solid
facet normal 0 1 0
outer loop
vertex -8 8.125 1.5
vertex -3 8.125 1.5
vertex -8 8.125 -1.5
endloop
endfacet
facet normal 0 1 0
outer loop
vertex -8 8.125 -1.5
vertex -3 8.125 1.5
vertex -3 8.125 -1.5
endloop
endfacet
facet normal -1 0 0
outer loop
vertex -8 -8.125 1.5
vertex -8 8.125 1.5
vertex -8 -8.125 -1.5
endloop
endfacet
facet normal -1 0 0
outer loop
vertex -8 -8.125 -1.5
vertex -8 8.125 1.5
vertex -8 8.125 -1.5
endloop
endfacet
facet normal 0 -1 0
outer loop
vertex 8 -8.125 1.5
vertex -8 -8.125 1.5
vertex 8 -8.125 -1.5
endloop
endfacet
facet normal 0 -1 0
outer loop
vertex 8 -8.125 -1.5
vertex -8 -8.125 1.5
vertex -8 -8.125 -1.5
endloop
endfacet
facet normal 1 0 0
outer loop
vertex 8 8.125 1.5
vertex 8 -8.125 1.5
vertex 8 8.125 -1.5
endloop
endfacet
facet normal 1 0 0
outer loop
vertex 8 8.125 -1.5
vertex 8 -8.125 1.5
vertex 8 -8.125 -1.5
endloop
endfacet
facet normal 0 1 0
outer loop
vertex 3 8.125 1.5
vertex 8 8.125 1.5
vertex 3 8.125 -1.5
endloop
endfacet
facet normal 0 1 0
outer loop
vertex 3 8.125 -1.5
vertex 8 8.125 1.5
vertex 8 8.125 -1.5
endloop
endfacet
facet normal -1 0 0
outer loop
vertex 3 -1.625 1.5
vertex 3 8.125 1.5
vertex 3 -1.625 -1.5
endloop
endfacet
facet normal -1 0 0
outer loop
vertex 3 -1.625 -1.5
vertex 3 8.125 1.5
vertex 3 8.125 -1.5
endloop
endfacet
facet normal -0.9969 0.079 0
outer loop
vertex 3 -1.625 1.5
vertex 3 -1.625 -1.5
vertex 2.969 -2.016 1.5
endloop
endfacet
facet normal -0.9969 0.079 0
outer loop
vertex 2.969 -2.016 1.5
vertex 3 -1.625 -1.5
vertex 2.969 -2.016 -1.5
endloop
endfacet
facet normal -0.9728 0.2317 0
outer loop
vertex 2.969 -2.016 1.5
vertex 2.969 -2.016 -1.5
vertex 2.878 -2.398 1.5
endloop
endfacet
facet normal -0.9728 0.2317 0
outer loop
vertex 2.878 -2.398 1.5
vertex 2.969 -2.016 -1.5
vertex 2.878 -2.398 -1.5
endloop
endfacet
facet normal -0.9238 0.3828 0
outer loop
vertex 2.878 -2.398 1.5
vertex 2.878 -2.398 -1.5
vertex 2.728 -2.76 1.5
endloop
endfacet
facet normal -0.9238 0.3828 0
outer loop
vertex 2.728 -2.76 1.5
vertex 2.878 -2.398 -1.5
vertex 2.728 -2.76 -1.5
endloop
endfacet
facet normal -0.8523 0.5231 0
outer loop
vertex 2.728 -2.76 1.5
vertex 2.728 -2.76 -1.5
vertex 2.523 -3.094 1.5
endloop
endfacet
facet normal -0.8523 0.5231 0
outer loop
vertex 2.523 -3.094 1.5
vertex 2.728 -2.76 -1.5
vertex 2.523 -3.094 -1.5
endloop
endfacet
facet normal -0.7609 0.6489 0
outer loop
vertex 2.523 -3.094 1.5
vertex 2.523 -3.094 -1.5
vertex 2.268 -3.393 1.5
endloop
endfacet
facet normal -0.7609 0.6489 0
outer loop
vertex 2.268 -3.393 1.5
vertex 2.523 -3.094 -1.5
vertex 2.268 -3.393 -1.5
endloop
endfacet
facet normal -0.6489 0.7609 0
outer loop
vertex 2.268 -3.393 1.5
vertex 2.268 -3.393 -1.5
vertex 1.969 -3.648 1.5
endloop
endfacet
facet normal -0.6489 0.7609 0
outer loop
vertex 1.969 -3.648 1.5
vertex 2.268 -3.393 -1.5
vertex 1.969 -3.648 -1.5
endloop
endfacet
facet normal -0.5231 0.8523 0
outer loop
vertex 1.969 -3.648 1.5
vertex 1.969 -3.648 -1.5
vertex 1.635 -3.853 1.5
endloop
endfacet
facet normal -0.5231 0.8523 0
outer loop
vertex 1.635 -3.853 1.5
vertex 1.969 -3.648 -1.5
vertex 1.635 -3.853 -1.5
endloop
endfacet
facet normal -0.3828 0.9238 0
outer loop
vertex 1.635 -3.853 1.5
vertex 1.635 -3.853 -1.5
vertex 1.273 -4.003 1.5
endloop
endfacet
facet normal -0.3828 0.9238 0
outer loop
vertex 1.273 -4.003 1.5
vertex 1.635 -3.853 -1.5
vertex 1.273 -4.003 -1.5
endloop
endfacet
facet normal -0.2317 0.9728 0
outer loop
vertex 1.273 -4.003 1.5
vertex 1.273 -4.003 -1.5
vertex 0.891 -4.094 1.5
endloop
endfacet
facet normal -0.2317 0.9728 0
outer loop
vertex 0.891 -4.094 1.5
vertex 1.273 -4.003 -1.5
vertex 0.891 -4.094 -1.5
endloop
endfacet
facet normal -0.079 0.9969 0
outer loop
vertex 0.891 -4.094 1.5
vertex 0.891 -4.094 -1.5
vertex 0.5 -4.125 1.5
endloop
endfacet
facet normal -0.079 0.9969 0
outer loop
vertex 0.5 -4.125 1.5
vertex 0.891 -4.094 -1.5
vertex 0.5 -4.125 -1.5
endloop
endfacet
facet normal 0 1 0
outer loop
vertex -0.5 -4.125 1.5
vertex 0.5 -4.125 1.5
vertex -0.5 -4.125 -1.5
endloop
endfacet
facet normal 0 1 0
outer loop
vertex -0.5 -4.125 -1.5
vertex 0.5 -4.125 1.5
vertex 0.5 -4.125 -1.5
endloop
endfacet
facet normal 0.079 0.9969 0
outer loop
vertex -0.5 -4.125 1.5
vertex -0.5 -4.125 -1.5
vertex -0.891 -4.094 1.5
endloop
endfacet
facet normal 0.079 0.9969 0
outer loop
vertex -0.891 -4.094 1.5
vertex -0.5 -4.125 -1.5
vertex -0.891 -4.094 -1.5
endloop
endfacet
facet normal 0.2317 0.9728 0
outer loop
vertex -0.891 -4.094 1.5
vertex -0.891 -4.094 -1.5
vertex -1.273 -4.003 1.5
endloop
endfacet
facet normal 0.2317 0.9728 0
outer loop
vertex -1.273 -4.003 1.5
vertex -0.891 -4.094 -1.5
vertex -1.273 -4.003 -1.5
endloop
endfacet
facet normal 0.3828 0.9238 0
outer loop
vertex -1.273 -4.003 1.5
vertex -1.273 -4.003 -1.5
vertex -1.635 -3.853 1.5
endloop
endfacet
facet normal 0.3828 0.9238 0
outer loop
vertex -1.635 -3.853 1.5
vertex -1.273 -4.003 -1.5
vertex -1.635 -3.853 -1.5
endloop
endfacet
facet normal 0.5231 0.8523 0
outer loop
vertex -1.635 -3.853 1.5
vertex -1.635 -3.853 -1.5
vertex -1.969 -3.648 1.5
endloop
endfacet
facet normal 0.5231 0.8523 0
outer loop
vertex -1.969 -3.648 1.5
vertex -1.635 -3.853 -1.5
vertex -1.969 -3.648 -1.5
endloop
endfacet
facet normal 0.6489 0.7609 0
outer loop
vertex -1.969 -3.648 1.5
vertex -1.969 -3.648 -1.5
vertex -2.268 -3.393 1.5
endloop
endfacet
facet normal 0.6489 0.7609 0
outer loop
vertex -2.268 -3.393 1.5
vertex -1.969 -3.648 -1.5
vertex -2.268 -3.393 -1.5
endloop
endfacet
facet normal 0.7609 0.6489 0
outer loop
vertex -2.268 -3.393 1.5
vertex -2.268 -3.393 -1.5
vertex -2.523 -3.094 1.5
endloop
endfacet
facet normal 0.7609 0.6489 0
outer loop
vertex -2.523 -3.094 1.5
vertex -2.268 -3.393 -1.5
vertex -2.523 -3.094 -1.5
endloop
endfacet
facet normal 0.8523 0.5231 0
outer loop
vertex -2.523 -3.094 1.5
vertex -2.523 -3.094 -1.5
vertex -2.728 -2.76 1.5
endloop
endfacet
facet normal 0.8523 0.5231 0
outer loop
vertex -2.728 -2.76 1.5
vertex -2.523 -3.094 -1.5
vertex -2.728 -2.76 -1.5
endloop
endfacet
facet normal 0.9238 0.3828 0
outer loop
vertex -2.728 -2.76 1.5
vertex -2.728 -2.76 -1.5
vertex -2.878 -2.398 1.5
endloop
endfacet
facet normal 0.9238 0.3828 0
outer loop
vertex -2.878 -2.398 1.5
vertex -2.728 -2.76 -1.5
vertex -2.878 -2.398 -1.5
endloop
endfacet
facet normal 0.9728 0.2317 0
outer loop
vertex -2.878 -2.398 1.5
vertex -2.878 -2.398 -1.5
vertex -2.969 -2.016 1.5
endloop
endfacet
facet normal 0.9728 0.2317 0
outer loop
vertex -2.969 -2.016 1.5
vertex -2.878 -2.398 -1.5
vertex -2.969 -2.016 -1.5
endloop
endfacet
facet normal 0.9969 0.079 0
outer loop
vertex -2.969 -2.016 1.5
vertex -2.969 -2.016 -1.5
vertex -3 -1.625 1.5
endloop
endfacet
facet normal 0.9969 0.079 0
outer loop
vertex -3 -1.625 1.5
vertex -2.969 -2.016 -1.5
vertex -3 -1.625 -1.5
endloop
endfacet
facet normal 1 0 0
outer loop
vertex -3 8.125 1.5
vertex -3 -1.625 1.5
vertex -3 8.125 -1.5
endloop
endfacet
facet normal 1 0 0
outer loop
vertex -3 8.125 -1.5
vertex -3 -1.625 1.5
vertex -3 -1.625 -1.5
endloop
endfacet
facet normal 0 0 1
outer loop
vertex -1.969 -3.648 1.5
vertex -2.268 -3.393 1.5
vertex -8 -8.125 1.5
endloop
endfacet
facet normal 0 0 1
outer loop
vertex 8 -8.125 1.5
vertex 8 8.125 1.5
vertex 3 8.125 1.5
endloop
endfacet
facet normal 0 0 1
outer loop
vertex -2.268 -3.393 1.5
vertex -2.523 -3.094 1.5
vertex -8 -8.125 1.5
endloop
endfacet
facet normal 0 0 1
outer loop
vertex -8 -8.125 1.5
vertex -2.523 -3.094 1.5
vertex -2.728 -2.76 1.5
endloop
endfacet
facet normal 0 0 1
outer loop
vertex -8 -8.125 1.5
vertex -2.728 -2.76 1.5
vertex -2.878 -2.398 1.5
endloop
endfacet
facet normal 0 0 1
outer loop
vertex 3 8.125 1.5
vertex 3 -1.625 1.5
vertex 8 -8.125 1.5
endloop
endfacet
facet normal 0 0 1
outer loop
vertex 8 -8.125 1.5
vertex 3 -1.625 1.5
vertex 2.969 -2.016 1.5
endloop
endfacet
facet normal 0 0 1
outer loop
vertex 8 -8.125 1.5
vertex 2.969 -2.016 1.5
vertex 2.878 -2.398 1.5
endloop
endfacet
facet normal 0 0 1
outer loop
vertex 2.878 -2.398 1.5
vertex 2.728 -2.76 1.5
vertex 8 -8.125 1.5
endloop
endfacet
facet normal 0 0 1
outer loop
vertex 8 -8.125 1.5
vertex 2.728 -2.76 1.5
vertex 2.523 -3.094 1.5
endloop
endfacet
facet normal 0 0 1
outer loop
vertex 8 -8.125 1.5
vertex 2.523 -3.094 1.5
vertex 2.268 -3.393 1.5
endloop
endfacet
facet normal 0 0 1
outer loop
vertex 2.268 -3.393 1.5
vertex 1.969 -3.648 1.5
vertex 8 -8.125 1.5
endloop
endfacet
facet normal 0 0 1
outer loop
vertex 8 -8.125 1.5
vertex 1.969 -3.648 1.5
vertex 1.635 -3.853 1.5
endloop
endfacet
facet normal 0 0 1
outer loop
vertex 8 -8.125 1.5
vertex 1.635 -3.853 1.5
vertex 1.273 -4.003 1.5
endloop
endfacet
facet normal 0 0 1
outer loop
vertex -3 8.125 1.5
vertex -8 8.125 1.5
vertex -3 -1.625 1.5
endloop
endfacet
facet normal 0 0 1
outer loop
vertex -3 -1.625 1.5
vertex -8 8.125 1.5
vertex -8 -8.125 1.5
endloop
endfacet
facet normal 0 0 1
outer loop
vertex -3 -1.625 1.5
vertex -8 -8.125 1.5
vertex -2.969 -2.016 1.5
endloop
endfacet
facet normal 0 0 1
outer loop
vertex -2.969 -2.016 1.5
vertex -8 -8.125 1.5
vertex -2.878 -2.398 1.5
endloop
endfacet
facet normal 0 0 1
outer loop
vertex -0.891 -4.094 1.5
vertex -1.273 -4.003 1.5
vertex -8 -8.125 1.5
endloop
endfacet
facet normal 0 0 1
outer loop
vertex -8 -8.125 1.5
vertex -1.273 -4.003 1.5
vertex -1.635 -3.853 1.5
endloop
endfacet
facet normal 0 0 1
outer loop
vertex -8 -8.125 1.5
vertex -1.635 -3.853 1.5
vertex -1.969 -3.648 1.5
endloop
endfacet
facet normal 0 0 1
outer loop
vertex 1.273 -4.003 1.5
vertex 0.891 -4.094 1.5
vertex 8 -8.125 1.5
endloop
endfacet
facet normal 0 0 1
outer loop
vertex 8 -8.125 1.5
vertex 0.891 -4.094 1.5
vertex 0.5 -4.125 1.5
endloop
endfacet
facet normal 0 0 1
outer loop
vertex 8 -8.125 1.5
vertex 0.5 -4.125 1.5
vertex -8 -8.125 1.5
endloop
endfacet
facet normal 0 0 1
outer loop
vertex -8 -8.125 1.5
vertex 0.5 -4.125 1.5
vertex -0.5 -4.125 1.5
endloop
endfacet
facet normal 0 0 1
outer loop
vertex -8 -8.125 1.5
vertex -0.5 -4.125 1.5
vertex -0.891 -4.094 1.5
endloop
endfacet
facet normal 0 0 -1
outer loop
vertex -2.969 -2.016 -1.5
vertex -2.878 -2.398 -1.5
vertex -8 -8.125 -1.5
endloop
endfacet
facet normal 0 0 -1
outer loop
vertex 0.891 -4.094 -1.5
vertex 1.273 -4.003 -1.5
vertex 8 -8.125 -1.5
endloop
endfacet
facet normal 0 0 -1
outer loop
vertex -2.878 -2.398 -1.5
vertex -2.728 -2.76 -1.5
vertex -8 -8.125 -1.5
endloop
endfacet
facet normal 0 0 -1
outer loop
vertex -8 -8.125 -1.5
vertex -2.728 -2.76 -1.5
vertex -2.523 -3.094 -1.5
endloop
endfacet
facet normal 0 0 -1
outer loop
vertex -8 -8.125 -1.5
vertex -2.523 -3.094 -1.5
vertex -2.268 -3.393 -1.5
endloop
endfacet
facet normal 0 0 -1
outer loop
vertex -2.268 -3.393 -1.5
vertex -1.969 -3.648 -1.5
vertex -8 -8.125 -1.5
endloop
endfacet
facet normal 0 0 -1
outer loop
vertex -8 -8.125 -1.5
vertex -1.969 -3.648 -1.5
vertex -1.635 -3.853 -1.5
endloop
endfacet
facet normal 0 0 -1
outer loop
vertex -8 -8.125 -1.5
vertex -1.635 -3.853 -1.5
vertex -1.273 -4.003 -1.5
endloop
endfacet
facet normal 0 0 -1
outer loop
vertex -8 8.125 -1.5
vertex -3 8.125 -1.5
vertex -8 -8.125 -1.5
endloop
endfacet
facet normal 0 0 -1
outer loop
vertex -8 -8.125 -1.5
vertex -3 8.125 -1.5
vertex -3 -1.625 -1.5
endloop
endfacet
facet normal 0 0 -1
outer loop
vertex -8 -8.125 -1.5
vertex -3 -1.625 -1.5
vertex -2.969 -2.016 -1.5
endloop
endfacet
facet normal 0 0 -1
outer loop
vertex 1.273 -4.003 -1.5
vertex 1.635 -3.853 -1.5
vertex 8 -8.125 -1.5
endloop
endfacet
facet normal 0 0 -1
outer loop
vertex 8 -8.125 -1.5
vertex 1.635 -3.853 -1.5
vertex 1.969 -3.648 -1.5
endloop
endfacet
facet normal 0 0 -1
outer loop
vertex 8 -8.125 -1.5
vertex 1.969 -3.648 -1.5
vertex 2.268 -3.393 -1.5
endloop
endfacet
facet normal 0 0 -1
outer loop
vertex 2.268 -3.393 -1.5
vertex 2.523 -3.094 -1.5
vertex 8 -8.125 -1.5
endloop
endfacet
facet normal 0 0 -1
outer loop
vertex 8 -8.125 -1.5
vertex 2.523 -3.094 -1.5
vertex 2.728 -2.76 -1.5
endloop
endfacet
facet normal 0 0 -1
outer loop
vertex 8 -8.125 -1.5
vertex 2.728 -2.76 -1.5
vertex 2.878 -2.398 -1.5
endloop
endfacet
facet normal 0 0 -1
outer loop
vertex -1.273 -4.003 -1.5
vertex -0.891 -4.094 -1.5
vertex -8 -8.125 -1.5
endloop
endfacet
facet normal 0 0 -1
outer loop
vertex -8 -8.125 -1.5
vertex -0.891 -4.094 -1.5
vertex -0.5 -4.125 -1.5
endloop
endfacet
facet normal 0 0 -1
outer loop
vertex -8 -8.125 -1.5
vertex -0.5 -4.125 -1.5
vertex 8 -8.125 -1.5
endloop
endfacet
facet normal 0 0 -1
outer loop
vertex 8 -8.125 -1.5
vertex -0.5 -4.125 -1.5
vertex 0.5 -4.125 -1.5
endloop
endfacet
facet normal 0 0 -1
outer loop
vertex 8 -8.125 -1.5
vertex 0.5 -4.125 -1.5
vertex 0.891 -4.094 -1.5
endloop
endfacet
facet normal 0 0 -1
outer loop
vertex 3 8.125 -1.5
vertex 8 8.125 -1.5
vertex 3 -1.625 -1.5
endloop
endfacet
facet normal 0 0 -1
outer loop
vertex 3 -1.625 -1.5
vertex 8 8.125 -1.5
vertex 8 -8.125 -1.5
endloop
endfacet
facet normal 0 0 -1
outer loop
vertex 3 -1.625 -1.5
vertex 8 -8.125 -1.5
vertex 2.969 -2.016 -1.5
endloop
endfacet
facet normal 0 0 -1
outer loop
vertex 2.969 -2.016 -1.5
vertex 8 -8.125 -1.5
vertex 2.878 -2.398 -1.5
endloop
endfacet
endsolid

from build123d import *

# Parameters (mm, degrees)
BOSS_EXTRUDE1_DEPTH = 1.5


with BuildPart() as part:
    # Sketch1 → Boss-Extrude1 (new, symmetric)
    with BuildSketch(Plane.XY):
        with BuildLine():
            Line((8, -8.125), (-8, -8.125))
            Line((-8, -8.125), (-8, 8.125))
            Line((-8, 8.125), (-3, 8.125))
            Line((-3, 8.125), (-3, -1.625))
            ThreePointArc((-3, -1.625), (-2.267766953, -3.392766953), (-0.5, -4.125))
            Line((-0.5, -4.125), (0.5, -4.125))
            ThreePointArc((0.5, -4.125), (2.267766953, -3.392766953), (3, -1.625))
            Line((3, -1.625), (3, 8.125))
            Line((3, 8.125), (8, 8.125))
            Line((8, 8.125), (8, -8.125))
        make_face()
    extrude(amount=BOSS_EXTRUDE1_DEPTH, both=True)


solid = part.part
